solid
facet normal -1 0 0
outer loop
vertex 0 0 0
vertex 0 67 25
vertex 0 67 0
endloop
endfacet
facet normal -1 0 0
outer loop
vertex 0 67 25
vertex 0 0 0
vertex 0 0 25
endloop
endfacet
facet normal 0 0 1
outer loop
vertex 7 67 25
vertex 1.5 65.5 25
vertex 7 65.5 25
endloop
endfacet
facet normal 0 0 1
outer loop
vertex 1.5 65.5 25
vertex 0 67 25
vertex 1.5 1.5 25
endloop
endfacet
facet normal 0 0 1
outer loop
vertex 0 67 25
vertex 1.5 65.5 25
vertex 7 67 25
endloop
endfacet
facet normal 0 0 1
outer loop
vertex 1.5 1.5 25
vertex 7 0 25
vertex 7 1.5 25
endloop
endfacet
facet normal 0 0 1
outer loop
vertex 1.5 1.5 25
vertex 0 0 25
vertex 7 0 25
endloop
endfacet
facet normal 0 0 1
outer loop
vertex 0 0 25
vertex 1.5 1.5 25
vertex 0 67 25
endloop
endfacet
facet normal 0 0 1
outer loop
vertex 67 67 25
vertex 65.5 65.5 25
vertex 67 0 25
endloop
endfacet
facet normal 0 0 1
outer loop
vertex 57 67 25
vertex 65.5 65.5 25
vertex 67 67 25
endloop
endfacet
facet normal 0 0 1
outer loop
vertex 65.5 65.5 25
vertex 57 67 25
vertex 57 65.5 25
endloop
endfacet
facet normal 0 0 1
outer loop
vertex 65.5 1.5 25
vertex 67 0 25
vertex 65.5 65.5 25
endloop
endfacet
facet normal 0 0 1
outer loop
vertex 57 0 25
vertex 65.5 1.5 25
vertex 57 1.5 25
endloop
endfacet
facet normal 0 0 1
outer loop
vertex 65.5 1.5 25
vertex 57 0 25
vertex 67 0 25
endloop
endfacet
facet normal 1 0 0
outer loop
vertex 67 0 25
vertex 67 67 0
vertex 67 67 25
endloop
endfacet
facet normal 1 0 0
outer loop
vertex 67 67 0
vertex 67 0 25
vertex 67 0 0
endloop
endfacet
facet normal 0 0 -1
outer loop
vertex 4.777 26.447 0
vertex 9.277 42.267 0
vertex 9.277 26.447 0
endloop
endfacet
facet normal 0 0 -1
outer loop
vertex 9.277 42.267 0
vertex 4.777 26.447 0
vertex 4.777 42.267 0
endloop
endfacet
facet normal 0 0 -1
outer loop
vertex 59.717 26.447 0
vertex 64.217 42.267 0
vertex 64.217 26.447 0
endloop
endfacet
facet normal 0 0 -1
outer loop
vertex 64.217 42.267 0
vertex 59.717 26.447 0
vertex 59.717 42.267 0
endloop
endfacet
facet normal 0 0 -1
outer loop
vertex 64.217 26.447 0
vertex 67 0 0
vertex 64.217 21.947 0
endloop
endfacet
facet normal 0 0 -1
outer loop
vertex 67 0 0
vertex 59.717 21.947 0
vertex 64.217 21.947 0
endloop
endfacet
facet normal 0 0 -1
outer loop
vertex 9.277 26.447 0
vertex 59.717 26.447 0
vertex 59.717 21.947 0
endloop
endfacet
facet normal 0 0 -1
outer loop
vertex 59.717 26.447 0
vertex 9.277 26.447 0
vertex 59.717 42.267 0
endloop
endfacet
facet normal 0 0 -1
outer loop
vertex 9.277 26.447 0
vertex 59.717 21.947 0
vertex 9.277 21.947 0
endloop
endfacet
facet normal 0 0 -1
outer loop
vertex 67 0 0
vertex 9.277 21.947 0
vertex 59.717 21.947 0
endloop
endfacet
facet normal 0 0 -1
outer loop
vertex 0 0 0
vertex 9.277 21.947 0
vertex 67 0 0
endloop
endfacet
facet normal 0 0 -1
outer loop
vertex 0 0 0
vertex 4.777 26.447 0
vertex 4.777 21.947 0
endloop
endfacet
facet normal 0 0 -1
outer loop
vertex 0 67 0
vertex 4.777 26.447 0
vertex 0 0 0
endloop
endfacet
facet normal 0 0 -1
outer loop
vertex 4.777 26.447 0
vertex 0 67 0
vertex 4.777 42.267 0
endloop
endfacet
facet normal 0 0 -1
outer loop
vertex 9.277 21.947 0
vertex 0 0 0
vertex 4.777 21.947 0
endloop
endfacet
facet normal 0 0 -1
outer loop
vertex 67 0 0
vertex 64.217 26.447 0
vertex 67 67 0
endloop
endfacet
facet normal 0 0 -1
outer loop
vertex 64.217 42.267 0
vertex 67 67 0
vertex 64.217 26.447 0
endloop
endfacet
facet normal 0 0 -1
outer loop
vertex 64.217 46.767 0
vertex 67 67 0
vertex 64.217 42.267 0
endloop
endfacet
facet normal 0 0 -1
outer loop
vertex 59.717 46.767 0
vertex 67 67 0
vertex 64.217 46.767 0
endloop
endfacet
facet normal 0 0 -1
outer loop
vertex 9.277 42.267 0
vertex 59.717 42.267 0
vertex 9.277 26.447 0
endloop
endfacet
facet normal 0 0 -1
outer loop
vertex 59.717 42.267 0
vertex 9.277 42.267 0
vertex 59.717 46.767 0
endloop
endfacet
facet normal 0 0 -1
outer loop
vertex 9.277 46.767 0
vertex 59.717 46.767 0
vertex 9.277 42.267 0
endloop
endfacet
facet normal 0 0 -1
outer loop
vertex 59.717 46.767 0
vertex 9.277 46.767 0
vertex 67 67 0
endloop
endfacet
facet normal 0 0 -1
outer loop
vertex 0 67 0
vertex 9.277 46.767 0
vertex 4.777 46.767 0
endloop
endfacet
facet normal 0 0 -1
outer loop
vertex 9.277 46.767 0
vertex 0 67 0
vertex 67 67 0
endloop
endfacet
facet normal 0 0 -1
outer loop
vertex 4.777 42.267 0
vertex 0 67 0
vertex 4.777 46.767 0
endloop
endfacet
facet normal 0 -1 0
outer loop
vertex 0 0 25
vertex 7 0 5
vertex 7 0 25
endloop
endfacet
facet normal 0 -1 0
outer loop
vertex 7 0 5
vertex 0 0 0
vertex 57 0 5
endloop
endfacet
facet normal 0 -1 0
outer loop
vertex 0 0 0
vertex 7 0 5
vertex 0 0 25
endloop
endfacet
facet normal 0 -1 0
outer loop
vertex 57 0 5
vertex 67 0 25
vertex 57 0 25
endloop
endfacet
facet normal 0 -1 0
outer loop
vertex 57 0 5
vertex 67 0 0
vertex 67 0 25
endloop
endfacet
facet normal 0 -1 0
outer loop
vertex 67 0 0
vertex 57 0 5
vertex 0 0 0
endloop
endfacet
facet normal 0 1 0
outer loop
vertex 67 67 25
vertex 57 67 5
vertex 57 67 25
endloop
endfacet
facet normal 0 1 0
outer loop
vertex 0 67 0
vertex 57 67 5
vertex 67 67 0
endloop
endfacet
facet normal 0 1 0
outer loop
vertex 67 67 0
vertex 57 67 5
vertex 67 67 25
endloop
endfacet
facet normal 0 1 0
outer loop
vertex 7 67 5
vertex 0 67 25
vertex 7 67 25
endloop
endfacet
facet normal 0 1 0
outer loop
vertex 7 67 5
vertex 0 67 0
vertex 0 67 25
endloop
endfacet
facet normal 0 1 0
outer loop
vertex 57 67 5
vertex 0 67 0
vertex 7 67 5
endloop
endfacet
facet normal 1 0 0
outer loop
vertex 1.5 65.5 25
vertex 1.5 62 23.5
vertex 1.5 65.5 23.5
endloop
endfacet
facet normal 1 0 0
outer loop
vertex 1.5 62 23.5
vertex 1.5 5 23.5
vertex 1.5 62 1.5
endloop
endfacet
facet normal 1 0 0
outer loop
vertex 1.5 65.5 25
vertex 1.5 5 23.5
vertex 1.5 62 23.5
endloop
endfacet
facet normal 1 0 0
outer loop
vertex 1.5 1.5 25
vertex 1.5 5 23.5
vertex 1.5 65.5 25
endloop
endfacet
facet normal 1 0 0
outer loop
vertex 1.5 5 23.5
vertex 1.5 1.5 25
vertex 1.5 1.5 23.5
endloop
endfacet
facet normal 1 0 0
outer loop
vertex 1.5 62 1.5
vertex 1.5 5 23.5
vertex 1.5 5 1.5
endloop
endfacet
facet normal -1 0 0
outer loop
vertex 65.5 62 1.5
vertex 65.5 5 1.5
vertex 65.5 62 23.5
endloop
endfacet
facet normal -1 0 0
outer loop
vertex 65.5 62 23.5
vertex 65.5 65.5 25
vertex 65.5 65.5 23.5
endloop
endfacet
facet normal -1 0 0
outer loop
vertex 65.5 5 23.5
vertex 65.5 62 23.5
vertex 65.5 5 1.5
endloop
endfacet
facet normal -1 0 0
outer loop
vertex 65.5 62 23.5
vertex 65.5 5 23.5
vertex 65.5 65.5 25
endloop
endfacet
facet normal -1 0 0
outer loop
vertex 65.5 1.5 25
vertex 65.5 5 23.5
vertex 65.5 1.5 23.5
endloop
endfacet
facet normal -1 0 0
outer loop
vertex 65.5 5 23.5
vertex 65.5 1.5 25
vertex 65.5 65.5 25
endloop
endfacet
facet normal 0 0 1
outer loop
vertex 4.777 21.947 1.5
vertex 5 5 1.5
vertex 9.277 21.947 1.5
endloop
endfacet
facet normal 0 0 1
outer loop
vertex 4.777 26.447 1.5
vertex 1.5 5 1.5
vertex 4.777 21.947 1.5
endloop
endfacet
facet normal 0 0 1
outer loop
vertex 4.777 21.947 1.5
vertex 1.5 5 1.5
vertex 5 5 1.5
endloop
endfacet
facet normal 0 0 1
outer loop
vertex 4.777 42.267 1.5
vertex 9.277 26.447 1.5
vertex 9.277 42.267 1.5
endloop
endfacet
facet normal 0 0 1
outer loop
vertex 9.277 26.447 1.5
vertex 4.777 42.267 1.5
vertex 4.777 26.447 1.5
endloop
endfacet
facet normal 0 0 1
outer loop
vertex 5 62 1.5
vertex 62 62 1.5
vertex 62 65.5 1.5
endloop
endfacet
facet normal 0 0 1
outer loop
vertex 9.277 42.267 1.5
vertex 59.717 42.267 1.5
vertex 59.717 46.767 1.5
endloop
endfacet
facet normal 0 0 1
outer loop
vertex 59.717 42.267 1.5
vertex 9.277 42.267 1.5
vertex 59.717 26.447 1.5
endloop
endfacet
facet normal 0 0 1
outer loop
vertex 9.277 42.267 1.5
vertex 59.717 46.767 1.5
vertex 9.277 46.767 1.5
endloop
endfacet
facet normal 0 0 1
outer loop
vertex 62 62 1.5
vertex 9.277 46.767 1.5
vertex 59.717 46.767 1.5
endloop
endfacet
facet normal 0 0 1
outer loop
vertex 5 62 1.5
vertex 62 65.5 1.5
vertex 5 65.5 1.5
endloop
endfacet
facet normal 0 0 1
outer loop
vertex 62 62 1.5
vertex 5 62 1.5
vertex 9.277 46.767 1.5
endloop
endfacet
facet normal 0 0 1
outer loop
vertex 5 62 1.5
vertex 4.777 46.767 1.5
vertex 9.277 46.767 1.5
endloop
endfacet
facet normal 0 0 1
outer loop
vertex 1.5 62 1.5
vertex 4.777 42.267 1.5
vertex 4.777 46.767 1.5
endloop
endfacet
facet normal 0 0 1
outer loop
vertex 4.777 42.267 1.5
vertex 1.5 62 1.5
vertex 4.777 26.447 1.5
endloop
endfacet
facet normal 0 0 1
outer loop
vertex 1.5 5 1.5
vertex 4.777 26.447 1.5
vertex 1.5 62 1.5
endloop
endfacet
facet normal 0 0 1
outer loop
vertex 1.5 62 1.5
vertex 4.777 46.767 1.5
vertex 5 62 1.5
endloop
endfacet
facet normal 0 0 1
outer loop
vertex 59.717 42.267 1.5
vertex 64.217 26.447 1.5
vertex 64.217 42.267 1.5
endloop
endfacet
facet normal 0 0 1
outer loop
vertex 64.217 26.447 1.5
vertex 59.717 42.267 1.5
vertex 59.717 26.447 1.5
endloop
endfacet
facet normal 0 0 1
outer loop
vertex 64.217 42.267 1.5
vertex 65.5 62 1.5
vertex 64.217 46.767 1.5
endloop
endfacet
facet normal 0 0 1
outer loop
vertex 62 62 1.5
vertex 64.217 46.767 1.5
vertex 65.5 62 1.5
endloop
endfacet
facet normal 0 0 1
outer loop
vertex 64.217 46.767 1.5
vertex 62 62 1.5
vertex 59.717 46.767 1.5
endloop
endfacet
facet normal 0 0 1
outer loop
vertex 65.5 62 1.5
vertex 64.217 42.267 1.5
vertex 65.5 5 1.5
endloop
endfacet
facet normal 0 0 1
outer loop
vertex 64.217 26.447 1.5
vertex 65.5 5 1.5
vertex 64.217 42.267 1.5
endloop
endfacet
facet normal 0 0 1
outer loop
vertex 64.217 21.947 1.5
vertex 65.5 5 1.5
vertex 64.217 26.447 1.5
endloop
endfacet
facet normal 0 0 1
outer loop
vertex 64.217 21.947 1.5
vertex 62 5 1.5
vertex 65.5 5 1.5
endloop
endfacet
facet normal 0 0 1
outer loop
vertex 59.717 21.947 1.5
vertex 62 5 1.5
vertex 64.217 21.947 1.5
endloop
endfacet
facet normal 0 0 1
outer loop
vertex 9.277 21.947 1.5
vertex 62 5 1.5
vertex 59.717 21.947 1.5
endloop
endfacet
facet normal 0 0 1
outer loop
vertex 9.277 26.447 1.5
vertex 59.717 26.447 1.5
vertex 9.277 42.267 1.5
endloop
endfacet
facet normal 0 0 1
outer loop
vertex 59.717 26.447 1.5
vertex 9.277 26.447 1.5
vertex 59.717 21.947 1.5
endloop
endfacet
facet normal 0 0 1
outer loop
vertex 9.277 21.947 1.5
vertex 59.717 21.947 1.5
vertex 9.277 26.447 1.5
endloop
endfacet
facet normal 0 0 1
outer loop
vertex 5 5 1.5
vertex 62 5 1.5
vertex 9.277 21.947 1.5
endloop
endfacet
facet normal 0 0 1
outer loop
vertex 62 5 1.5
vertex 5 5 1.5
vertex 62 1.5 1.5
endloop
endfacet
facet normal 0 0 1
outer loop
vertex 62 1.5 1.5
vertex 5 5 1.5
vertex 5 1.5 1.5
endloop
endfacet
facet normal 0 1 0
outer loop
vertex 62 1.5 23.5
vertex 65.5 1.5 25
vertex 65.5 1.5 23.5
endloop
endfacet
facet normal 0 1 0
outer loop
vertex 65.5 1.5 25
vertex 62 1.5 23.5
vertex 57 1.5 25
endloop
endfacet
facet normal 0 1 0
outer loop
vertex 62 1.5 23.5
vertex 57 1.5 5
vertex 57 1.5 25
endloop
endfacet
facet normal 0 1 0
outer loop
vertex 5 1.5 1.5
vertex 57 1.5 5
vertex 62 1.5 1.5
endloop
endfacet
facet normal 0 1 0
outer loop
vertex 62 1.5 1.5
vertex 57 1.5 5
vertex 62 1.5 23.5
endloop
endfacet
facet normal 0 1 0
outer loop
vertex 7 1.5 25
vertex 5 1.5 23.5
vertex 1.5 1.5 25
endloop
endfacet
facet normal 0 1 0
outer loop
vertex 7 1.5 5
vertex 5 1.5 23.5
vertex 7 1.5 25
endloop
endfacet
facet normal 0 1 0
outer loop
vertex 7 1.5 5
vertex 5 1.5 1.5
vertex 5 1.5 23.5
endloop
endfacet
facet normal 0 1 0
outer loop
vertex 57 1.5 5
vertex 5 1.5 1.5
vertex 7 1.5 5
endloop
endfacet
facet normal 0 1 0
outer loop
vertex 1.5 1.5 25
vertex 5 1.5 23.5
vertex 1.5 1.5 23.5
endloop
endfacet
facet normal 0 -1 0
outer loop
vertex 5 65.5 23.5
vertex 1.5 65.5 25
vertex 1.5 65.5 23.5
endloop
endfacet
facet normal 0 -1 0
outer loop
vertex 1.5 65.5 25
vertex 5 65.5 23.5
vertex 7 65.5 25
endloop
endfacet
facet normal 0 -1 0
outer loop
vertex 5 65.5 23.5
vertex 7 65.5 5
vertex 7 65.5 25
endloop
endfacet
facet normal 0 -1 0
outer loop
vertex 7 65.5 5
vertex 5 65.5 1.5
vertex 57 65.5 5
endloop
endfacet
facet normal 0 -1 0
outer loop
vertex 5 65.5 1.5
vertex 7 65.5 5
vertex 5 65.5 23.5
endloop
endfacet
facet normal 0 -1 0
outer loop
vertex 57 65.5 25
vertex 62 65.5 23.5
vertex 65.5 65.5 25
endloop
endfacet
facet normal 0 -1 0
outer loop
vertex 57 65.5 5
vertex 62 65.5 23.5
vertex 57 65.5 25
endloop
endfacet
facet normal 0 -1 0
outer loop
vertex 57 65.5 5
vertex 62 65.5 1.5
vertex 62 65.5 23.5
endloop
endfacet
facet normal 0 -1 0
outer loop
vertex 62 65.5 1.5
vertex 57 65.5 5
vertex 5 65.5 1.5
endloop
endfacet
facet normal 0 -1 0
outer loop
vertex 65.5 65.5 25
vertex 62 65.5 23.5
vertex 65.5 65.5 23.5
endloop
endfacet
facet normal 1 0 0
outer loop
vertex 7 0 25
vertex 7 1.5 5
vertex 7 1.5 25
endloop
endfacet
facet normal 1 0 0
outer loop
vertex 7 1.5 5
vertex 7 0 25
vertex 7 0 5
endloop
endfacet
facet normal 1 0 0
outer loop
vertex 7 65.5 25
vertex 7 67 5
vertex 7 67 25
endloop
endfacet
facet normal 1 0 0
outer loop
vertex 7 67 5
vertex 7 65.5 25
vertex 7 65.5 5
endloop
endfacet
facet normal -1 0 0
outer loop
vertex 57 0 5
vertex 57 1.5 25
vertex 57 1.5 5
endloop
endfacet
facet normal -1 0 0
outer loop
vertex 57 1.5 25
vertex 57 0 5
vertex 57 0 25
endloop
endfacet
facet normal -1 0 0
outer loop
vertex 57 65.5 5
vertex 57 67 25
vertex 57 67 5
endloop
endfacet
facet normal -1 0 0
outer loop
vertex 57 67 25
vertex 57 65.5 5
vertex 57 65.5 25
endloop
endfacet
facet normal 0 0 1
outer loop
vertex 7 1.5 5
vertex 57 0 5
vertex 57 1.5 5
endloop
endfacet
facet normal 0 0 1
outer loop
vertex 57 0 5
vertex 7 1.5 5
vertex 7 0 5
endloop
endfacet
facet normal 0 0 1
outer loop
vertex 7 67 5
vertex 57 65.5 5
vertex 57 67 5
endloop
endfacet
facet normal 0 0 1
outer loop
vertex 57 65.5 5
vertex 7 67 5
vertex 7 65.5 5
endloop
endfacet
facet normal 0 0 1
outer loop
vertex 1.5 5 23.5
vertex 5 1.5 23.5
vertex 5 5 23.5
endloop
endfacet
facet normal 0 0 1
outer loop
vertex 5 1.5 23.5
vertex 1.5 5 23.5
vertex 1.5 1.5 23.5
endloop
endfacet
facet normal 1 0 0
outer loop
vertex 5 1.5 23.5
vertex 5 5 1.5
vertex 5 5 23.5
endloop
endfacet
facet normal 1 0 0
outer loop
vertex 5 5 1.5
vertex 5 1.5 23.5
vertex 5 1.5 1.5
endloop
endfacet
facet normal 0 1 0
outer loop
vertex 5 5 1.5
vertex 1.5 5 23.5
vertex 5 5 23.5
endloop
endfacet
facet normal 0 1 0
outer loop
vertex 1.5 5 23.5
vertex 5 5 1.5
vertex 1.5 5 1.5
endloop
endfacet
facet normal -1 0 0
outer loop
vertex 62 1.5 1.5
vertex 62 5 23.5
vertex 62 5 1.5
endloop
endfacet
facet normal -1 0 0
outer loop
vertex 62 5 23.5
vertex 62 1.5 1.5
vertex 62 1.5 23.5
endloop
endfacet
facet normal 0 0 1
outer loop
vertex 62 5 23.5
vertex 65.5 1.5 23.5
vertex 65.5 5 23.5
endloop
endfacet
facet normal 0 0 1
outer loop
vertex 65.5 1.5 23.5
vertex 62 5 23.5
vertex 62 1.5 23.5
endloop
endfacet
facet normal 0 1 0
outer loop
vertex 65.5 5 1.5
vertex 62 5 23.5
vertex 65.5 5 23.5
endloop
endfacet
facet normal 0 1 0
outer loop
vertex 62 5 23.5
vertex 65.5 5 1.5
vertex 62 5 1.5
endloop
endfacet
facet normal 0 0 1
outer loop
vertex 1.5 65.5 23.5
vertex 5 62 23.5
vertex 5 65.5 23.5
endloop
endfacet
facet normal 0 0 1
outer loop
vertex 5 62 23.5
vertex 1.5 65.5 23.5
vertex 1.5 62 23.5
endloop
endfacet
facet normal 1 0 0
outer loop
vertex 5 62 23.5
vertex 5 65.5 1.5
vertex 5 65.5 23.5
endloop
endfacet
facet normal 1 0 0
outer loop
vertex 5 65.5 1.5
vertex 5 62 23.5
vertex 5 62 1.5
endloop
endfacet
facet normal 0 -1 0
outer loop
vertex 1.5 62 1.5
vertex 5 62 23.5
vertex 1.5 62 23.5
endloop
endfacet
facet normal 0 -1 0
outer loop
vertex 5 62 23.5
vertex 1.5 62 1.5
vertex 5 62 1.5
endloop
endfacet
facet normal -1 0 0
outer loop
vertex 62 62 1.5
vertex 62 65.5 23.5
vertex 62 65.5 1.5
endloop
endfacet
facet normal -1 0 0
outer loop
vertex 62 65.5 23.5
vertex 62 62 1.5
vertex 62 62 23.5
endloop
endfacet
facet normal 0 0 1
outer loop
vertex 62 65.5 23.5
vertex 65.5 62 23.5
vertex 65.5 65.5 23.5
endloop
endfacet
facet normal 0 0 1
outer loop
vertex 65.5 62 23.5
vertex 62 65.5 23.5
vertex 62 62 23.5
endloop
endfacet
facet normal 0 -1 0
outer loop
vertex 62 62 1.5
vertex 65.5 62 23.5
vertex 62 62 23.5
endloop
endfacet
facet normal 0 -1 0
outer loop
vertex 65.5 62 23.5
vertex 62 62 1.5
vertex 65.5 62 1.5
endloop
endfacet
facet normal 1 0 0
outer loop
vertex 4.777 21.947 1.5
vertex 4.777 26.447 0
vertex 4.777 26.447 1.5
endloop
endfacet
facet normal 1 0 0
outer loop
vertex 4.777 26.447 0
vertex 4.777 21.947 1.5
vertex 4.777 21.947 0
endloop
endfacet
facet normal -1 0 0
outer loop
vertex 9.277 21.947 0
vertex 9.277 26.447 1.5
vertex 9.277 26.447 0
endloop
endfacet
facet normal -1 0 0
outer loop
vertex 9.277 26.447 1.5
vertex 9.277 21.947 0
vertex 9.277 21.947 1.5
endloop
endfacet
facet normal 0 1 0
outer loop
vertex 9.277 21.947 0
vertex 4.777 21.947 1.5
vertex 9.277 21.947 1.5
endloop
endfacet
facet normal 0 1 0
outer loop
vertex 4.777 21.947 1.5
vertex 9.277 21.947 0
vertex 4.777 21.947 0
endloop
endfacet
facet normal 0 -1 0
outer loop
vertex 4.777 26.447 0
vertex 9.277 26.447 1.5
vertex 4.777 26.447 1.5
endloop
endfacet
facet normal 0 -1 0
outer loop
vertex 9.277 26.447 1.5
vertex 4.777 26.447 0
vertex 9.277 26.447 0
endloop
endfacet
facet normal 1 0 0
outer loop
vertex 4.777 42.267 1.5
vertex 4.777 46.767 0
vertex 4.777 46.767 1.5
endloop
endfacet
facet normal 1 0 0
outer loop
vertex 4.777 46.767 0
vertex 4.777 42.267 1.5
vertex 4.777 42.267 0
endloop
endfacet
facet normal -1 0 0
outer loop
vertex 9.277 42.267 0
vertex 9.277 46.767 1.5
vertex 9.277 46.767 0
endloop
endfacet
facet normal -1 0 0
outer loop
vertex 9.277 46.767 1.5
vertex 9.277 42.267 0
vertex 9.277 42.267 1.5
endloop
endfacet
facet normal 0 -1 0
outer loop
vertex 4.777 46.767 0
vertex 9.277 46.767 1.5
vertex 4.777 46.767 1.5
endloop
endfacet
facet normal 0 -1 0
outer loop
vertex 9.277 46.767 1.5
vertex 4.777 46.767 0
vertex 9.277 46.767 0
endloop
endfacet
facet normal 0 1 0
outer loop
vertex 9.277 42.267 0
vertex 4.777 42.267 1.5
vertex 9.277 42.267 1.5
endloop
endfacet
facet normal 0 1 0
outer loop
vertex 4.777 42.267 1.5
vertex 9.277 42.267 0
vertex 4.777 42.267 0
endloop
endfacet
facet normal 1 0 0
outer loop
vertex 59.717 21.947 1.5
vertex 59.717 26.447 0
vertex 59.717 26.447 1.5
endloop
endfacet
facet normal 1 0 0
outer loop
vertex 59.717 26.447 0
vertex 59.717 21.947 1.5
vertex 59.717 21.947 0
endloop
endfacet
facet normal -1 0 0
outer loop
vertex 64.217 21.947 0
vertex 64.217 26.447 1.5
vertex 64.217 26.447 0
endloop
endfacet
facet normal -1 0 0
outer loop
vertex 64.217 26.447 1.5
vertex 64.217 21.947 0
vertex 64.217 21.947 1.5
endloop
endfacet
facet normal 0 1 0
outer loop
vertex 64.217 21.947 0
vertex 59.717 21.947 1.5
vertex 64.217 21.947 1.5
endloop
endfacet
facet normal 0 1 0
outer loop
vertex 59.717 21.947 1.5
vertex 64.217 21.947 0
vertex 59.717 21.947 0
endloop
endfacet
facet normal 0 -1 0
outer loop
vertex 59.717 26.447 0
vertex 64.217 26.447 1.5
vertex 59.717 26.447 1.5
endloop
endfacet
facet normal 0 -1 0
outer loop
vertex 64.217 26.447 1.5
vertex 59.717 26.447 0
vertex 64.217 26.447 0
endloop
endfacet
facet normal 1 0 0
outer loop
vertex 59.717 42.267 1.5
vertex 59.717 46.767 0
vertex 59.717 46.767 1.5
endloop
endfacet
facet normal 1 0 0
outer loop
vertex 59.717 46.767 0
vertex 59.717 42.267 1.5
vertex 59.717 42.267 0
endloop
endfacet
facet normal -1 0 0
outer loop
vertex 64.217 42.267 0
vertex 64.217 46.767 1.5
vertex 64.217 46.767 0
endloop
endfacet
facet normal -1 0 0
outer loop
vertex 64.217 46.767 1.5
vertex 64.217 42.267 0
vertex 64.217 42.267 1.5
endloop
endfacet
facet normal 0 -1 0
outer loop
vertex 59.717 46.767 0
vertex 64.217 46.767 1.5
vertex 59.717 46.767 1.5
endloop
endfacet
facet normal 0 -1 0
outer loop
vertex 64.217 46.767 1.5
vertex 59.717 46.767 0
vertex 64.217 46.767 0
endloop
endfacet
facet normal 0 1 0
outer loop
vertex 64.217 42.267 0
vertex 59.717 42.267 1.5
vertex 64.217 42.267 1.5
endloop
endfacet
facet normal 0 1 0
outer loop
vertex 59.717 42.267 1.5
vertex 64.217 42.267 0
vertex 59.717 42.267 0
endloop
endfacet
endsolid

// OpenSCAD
$fn = 30;
thou2mm = 0.0254;

difference(){
    
        union(){
//cube([62,62,1.5]);
//translate([-2.5,-2.5,0]){
    cube([5,5,23.5]);
    translate([62,0,0]){cube([5,5,23.5]);}
    translate([0,62,0]){cube([5,5,23.5]);}
    translate([62,62,0]){cube([5,5,23.5]);}
    difference(){
        cube([67,67,25]);
        translate([1.5,1.5,1.5]){
            cube([64,64,23.5]);}
        translate([7,0,5]){
            cube([50,70,20]);}

//    }
}
}
// probably radius should be 180
translate([1.5,1.5,0]){
translate([129*thou2mm,805*thou2mm]) {
cube([4.5,4.5,50]);
}
translate([129*thou2mm,1605*thou2mm]){
cube([4.5,4.5,50]);
}
translate([2292*thou2mm,805*thou2mm]){ 
    cube([4.5,4.5,50]);
}
translate([2292*thou2mm,1605*thou2mm]){ 
cube([4.5,4.5,50]);

}
}
}
